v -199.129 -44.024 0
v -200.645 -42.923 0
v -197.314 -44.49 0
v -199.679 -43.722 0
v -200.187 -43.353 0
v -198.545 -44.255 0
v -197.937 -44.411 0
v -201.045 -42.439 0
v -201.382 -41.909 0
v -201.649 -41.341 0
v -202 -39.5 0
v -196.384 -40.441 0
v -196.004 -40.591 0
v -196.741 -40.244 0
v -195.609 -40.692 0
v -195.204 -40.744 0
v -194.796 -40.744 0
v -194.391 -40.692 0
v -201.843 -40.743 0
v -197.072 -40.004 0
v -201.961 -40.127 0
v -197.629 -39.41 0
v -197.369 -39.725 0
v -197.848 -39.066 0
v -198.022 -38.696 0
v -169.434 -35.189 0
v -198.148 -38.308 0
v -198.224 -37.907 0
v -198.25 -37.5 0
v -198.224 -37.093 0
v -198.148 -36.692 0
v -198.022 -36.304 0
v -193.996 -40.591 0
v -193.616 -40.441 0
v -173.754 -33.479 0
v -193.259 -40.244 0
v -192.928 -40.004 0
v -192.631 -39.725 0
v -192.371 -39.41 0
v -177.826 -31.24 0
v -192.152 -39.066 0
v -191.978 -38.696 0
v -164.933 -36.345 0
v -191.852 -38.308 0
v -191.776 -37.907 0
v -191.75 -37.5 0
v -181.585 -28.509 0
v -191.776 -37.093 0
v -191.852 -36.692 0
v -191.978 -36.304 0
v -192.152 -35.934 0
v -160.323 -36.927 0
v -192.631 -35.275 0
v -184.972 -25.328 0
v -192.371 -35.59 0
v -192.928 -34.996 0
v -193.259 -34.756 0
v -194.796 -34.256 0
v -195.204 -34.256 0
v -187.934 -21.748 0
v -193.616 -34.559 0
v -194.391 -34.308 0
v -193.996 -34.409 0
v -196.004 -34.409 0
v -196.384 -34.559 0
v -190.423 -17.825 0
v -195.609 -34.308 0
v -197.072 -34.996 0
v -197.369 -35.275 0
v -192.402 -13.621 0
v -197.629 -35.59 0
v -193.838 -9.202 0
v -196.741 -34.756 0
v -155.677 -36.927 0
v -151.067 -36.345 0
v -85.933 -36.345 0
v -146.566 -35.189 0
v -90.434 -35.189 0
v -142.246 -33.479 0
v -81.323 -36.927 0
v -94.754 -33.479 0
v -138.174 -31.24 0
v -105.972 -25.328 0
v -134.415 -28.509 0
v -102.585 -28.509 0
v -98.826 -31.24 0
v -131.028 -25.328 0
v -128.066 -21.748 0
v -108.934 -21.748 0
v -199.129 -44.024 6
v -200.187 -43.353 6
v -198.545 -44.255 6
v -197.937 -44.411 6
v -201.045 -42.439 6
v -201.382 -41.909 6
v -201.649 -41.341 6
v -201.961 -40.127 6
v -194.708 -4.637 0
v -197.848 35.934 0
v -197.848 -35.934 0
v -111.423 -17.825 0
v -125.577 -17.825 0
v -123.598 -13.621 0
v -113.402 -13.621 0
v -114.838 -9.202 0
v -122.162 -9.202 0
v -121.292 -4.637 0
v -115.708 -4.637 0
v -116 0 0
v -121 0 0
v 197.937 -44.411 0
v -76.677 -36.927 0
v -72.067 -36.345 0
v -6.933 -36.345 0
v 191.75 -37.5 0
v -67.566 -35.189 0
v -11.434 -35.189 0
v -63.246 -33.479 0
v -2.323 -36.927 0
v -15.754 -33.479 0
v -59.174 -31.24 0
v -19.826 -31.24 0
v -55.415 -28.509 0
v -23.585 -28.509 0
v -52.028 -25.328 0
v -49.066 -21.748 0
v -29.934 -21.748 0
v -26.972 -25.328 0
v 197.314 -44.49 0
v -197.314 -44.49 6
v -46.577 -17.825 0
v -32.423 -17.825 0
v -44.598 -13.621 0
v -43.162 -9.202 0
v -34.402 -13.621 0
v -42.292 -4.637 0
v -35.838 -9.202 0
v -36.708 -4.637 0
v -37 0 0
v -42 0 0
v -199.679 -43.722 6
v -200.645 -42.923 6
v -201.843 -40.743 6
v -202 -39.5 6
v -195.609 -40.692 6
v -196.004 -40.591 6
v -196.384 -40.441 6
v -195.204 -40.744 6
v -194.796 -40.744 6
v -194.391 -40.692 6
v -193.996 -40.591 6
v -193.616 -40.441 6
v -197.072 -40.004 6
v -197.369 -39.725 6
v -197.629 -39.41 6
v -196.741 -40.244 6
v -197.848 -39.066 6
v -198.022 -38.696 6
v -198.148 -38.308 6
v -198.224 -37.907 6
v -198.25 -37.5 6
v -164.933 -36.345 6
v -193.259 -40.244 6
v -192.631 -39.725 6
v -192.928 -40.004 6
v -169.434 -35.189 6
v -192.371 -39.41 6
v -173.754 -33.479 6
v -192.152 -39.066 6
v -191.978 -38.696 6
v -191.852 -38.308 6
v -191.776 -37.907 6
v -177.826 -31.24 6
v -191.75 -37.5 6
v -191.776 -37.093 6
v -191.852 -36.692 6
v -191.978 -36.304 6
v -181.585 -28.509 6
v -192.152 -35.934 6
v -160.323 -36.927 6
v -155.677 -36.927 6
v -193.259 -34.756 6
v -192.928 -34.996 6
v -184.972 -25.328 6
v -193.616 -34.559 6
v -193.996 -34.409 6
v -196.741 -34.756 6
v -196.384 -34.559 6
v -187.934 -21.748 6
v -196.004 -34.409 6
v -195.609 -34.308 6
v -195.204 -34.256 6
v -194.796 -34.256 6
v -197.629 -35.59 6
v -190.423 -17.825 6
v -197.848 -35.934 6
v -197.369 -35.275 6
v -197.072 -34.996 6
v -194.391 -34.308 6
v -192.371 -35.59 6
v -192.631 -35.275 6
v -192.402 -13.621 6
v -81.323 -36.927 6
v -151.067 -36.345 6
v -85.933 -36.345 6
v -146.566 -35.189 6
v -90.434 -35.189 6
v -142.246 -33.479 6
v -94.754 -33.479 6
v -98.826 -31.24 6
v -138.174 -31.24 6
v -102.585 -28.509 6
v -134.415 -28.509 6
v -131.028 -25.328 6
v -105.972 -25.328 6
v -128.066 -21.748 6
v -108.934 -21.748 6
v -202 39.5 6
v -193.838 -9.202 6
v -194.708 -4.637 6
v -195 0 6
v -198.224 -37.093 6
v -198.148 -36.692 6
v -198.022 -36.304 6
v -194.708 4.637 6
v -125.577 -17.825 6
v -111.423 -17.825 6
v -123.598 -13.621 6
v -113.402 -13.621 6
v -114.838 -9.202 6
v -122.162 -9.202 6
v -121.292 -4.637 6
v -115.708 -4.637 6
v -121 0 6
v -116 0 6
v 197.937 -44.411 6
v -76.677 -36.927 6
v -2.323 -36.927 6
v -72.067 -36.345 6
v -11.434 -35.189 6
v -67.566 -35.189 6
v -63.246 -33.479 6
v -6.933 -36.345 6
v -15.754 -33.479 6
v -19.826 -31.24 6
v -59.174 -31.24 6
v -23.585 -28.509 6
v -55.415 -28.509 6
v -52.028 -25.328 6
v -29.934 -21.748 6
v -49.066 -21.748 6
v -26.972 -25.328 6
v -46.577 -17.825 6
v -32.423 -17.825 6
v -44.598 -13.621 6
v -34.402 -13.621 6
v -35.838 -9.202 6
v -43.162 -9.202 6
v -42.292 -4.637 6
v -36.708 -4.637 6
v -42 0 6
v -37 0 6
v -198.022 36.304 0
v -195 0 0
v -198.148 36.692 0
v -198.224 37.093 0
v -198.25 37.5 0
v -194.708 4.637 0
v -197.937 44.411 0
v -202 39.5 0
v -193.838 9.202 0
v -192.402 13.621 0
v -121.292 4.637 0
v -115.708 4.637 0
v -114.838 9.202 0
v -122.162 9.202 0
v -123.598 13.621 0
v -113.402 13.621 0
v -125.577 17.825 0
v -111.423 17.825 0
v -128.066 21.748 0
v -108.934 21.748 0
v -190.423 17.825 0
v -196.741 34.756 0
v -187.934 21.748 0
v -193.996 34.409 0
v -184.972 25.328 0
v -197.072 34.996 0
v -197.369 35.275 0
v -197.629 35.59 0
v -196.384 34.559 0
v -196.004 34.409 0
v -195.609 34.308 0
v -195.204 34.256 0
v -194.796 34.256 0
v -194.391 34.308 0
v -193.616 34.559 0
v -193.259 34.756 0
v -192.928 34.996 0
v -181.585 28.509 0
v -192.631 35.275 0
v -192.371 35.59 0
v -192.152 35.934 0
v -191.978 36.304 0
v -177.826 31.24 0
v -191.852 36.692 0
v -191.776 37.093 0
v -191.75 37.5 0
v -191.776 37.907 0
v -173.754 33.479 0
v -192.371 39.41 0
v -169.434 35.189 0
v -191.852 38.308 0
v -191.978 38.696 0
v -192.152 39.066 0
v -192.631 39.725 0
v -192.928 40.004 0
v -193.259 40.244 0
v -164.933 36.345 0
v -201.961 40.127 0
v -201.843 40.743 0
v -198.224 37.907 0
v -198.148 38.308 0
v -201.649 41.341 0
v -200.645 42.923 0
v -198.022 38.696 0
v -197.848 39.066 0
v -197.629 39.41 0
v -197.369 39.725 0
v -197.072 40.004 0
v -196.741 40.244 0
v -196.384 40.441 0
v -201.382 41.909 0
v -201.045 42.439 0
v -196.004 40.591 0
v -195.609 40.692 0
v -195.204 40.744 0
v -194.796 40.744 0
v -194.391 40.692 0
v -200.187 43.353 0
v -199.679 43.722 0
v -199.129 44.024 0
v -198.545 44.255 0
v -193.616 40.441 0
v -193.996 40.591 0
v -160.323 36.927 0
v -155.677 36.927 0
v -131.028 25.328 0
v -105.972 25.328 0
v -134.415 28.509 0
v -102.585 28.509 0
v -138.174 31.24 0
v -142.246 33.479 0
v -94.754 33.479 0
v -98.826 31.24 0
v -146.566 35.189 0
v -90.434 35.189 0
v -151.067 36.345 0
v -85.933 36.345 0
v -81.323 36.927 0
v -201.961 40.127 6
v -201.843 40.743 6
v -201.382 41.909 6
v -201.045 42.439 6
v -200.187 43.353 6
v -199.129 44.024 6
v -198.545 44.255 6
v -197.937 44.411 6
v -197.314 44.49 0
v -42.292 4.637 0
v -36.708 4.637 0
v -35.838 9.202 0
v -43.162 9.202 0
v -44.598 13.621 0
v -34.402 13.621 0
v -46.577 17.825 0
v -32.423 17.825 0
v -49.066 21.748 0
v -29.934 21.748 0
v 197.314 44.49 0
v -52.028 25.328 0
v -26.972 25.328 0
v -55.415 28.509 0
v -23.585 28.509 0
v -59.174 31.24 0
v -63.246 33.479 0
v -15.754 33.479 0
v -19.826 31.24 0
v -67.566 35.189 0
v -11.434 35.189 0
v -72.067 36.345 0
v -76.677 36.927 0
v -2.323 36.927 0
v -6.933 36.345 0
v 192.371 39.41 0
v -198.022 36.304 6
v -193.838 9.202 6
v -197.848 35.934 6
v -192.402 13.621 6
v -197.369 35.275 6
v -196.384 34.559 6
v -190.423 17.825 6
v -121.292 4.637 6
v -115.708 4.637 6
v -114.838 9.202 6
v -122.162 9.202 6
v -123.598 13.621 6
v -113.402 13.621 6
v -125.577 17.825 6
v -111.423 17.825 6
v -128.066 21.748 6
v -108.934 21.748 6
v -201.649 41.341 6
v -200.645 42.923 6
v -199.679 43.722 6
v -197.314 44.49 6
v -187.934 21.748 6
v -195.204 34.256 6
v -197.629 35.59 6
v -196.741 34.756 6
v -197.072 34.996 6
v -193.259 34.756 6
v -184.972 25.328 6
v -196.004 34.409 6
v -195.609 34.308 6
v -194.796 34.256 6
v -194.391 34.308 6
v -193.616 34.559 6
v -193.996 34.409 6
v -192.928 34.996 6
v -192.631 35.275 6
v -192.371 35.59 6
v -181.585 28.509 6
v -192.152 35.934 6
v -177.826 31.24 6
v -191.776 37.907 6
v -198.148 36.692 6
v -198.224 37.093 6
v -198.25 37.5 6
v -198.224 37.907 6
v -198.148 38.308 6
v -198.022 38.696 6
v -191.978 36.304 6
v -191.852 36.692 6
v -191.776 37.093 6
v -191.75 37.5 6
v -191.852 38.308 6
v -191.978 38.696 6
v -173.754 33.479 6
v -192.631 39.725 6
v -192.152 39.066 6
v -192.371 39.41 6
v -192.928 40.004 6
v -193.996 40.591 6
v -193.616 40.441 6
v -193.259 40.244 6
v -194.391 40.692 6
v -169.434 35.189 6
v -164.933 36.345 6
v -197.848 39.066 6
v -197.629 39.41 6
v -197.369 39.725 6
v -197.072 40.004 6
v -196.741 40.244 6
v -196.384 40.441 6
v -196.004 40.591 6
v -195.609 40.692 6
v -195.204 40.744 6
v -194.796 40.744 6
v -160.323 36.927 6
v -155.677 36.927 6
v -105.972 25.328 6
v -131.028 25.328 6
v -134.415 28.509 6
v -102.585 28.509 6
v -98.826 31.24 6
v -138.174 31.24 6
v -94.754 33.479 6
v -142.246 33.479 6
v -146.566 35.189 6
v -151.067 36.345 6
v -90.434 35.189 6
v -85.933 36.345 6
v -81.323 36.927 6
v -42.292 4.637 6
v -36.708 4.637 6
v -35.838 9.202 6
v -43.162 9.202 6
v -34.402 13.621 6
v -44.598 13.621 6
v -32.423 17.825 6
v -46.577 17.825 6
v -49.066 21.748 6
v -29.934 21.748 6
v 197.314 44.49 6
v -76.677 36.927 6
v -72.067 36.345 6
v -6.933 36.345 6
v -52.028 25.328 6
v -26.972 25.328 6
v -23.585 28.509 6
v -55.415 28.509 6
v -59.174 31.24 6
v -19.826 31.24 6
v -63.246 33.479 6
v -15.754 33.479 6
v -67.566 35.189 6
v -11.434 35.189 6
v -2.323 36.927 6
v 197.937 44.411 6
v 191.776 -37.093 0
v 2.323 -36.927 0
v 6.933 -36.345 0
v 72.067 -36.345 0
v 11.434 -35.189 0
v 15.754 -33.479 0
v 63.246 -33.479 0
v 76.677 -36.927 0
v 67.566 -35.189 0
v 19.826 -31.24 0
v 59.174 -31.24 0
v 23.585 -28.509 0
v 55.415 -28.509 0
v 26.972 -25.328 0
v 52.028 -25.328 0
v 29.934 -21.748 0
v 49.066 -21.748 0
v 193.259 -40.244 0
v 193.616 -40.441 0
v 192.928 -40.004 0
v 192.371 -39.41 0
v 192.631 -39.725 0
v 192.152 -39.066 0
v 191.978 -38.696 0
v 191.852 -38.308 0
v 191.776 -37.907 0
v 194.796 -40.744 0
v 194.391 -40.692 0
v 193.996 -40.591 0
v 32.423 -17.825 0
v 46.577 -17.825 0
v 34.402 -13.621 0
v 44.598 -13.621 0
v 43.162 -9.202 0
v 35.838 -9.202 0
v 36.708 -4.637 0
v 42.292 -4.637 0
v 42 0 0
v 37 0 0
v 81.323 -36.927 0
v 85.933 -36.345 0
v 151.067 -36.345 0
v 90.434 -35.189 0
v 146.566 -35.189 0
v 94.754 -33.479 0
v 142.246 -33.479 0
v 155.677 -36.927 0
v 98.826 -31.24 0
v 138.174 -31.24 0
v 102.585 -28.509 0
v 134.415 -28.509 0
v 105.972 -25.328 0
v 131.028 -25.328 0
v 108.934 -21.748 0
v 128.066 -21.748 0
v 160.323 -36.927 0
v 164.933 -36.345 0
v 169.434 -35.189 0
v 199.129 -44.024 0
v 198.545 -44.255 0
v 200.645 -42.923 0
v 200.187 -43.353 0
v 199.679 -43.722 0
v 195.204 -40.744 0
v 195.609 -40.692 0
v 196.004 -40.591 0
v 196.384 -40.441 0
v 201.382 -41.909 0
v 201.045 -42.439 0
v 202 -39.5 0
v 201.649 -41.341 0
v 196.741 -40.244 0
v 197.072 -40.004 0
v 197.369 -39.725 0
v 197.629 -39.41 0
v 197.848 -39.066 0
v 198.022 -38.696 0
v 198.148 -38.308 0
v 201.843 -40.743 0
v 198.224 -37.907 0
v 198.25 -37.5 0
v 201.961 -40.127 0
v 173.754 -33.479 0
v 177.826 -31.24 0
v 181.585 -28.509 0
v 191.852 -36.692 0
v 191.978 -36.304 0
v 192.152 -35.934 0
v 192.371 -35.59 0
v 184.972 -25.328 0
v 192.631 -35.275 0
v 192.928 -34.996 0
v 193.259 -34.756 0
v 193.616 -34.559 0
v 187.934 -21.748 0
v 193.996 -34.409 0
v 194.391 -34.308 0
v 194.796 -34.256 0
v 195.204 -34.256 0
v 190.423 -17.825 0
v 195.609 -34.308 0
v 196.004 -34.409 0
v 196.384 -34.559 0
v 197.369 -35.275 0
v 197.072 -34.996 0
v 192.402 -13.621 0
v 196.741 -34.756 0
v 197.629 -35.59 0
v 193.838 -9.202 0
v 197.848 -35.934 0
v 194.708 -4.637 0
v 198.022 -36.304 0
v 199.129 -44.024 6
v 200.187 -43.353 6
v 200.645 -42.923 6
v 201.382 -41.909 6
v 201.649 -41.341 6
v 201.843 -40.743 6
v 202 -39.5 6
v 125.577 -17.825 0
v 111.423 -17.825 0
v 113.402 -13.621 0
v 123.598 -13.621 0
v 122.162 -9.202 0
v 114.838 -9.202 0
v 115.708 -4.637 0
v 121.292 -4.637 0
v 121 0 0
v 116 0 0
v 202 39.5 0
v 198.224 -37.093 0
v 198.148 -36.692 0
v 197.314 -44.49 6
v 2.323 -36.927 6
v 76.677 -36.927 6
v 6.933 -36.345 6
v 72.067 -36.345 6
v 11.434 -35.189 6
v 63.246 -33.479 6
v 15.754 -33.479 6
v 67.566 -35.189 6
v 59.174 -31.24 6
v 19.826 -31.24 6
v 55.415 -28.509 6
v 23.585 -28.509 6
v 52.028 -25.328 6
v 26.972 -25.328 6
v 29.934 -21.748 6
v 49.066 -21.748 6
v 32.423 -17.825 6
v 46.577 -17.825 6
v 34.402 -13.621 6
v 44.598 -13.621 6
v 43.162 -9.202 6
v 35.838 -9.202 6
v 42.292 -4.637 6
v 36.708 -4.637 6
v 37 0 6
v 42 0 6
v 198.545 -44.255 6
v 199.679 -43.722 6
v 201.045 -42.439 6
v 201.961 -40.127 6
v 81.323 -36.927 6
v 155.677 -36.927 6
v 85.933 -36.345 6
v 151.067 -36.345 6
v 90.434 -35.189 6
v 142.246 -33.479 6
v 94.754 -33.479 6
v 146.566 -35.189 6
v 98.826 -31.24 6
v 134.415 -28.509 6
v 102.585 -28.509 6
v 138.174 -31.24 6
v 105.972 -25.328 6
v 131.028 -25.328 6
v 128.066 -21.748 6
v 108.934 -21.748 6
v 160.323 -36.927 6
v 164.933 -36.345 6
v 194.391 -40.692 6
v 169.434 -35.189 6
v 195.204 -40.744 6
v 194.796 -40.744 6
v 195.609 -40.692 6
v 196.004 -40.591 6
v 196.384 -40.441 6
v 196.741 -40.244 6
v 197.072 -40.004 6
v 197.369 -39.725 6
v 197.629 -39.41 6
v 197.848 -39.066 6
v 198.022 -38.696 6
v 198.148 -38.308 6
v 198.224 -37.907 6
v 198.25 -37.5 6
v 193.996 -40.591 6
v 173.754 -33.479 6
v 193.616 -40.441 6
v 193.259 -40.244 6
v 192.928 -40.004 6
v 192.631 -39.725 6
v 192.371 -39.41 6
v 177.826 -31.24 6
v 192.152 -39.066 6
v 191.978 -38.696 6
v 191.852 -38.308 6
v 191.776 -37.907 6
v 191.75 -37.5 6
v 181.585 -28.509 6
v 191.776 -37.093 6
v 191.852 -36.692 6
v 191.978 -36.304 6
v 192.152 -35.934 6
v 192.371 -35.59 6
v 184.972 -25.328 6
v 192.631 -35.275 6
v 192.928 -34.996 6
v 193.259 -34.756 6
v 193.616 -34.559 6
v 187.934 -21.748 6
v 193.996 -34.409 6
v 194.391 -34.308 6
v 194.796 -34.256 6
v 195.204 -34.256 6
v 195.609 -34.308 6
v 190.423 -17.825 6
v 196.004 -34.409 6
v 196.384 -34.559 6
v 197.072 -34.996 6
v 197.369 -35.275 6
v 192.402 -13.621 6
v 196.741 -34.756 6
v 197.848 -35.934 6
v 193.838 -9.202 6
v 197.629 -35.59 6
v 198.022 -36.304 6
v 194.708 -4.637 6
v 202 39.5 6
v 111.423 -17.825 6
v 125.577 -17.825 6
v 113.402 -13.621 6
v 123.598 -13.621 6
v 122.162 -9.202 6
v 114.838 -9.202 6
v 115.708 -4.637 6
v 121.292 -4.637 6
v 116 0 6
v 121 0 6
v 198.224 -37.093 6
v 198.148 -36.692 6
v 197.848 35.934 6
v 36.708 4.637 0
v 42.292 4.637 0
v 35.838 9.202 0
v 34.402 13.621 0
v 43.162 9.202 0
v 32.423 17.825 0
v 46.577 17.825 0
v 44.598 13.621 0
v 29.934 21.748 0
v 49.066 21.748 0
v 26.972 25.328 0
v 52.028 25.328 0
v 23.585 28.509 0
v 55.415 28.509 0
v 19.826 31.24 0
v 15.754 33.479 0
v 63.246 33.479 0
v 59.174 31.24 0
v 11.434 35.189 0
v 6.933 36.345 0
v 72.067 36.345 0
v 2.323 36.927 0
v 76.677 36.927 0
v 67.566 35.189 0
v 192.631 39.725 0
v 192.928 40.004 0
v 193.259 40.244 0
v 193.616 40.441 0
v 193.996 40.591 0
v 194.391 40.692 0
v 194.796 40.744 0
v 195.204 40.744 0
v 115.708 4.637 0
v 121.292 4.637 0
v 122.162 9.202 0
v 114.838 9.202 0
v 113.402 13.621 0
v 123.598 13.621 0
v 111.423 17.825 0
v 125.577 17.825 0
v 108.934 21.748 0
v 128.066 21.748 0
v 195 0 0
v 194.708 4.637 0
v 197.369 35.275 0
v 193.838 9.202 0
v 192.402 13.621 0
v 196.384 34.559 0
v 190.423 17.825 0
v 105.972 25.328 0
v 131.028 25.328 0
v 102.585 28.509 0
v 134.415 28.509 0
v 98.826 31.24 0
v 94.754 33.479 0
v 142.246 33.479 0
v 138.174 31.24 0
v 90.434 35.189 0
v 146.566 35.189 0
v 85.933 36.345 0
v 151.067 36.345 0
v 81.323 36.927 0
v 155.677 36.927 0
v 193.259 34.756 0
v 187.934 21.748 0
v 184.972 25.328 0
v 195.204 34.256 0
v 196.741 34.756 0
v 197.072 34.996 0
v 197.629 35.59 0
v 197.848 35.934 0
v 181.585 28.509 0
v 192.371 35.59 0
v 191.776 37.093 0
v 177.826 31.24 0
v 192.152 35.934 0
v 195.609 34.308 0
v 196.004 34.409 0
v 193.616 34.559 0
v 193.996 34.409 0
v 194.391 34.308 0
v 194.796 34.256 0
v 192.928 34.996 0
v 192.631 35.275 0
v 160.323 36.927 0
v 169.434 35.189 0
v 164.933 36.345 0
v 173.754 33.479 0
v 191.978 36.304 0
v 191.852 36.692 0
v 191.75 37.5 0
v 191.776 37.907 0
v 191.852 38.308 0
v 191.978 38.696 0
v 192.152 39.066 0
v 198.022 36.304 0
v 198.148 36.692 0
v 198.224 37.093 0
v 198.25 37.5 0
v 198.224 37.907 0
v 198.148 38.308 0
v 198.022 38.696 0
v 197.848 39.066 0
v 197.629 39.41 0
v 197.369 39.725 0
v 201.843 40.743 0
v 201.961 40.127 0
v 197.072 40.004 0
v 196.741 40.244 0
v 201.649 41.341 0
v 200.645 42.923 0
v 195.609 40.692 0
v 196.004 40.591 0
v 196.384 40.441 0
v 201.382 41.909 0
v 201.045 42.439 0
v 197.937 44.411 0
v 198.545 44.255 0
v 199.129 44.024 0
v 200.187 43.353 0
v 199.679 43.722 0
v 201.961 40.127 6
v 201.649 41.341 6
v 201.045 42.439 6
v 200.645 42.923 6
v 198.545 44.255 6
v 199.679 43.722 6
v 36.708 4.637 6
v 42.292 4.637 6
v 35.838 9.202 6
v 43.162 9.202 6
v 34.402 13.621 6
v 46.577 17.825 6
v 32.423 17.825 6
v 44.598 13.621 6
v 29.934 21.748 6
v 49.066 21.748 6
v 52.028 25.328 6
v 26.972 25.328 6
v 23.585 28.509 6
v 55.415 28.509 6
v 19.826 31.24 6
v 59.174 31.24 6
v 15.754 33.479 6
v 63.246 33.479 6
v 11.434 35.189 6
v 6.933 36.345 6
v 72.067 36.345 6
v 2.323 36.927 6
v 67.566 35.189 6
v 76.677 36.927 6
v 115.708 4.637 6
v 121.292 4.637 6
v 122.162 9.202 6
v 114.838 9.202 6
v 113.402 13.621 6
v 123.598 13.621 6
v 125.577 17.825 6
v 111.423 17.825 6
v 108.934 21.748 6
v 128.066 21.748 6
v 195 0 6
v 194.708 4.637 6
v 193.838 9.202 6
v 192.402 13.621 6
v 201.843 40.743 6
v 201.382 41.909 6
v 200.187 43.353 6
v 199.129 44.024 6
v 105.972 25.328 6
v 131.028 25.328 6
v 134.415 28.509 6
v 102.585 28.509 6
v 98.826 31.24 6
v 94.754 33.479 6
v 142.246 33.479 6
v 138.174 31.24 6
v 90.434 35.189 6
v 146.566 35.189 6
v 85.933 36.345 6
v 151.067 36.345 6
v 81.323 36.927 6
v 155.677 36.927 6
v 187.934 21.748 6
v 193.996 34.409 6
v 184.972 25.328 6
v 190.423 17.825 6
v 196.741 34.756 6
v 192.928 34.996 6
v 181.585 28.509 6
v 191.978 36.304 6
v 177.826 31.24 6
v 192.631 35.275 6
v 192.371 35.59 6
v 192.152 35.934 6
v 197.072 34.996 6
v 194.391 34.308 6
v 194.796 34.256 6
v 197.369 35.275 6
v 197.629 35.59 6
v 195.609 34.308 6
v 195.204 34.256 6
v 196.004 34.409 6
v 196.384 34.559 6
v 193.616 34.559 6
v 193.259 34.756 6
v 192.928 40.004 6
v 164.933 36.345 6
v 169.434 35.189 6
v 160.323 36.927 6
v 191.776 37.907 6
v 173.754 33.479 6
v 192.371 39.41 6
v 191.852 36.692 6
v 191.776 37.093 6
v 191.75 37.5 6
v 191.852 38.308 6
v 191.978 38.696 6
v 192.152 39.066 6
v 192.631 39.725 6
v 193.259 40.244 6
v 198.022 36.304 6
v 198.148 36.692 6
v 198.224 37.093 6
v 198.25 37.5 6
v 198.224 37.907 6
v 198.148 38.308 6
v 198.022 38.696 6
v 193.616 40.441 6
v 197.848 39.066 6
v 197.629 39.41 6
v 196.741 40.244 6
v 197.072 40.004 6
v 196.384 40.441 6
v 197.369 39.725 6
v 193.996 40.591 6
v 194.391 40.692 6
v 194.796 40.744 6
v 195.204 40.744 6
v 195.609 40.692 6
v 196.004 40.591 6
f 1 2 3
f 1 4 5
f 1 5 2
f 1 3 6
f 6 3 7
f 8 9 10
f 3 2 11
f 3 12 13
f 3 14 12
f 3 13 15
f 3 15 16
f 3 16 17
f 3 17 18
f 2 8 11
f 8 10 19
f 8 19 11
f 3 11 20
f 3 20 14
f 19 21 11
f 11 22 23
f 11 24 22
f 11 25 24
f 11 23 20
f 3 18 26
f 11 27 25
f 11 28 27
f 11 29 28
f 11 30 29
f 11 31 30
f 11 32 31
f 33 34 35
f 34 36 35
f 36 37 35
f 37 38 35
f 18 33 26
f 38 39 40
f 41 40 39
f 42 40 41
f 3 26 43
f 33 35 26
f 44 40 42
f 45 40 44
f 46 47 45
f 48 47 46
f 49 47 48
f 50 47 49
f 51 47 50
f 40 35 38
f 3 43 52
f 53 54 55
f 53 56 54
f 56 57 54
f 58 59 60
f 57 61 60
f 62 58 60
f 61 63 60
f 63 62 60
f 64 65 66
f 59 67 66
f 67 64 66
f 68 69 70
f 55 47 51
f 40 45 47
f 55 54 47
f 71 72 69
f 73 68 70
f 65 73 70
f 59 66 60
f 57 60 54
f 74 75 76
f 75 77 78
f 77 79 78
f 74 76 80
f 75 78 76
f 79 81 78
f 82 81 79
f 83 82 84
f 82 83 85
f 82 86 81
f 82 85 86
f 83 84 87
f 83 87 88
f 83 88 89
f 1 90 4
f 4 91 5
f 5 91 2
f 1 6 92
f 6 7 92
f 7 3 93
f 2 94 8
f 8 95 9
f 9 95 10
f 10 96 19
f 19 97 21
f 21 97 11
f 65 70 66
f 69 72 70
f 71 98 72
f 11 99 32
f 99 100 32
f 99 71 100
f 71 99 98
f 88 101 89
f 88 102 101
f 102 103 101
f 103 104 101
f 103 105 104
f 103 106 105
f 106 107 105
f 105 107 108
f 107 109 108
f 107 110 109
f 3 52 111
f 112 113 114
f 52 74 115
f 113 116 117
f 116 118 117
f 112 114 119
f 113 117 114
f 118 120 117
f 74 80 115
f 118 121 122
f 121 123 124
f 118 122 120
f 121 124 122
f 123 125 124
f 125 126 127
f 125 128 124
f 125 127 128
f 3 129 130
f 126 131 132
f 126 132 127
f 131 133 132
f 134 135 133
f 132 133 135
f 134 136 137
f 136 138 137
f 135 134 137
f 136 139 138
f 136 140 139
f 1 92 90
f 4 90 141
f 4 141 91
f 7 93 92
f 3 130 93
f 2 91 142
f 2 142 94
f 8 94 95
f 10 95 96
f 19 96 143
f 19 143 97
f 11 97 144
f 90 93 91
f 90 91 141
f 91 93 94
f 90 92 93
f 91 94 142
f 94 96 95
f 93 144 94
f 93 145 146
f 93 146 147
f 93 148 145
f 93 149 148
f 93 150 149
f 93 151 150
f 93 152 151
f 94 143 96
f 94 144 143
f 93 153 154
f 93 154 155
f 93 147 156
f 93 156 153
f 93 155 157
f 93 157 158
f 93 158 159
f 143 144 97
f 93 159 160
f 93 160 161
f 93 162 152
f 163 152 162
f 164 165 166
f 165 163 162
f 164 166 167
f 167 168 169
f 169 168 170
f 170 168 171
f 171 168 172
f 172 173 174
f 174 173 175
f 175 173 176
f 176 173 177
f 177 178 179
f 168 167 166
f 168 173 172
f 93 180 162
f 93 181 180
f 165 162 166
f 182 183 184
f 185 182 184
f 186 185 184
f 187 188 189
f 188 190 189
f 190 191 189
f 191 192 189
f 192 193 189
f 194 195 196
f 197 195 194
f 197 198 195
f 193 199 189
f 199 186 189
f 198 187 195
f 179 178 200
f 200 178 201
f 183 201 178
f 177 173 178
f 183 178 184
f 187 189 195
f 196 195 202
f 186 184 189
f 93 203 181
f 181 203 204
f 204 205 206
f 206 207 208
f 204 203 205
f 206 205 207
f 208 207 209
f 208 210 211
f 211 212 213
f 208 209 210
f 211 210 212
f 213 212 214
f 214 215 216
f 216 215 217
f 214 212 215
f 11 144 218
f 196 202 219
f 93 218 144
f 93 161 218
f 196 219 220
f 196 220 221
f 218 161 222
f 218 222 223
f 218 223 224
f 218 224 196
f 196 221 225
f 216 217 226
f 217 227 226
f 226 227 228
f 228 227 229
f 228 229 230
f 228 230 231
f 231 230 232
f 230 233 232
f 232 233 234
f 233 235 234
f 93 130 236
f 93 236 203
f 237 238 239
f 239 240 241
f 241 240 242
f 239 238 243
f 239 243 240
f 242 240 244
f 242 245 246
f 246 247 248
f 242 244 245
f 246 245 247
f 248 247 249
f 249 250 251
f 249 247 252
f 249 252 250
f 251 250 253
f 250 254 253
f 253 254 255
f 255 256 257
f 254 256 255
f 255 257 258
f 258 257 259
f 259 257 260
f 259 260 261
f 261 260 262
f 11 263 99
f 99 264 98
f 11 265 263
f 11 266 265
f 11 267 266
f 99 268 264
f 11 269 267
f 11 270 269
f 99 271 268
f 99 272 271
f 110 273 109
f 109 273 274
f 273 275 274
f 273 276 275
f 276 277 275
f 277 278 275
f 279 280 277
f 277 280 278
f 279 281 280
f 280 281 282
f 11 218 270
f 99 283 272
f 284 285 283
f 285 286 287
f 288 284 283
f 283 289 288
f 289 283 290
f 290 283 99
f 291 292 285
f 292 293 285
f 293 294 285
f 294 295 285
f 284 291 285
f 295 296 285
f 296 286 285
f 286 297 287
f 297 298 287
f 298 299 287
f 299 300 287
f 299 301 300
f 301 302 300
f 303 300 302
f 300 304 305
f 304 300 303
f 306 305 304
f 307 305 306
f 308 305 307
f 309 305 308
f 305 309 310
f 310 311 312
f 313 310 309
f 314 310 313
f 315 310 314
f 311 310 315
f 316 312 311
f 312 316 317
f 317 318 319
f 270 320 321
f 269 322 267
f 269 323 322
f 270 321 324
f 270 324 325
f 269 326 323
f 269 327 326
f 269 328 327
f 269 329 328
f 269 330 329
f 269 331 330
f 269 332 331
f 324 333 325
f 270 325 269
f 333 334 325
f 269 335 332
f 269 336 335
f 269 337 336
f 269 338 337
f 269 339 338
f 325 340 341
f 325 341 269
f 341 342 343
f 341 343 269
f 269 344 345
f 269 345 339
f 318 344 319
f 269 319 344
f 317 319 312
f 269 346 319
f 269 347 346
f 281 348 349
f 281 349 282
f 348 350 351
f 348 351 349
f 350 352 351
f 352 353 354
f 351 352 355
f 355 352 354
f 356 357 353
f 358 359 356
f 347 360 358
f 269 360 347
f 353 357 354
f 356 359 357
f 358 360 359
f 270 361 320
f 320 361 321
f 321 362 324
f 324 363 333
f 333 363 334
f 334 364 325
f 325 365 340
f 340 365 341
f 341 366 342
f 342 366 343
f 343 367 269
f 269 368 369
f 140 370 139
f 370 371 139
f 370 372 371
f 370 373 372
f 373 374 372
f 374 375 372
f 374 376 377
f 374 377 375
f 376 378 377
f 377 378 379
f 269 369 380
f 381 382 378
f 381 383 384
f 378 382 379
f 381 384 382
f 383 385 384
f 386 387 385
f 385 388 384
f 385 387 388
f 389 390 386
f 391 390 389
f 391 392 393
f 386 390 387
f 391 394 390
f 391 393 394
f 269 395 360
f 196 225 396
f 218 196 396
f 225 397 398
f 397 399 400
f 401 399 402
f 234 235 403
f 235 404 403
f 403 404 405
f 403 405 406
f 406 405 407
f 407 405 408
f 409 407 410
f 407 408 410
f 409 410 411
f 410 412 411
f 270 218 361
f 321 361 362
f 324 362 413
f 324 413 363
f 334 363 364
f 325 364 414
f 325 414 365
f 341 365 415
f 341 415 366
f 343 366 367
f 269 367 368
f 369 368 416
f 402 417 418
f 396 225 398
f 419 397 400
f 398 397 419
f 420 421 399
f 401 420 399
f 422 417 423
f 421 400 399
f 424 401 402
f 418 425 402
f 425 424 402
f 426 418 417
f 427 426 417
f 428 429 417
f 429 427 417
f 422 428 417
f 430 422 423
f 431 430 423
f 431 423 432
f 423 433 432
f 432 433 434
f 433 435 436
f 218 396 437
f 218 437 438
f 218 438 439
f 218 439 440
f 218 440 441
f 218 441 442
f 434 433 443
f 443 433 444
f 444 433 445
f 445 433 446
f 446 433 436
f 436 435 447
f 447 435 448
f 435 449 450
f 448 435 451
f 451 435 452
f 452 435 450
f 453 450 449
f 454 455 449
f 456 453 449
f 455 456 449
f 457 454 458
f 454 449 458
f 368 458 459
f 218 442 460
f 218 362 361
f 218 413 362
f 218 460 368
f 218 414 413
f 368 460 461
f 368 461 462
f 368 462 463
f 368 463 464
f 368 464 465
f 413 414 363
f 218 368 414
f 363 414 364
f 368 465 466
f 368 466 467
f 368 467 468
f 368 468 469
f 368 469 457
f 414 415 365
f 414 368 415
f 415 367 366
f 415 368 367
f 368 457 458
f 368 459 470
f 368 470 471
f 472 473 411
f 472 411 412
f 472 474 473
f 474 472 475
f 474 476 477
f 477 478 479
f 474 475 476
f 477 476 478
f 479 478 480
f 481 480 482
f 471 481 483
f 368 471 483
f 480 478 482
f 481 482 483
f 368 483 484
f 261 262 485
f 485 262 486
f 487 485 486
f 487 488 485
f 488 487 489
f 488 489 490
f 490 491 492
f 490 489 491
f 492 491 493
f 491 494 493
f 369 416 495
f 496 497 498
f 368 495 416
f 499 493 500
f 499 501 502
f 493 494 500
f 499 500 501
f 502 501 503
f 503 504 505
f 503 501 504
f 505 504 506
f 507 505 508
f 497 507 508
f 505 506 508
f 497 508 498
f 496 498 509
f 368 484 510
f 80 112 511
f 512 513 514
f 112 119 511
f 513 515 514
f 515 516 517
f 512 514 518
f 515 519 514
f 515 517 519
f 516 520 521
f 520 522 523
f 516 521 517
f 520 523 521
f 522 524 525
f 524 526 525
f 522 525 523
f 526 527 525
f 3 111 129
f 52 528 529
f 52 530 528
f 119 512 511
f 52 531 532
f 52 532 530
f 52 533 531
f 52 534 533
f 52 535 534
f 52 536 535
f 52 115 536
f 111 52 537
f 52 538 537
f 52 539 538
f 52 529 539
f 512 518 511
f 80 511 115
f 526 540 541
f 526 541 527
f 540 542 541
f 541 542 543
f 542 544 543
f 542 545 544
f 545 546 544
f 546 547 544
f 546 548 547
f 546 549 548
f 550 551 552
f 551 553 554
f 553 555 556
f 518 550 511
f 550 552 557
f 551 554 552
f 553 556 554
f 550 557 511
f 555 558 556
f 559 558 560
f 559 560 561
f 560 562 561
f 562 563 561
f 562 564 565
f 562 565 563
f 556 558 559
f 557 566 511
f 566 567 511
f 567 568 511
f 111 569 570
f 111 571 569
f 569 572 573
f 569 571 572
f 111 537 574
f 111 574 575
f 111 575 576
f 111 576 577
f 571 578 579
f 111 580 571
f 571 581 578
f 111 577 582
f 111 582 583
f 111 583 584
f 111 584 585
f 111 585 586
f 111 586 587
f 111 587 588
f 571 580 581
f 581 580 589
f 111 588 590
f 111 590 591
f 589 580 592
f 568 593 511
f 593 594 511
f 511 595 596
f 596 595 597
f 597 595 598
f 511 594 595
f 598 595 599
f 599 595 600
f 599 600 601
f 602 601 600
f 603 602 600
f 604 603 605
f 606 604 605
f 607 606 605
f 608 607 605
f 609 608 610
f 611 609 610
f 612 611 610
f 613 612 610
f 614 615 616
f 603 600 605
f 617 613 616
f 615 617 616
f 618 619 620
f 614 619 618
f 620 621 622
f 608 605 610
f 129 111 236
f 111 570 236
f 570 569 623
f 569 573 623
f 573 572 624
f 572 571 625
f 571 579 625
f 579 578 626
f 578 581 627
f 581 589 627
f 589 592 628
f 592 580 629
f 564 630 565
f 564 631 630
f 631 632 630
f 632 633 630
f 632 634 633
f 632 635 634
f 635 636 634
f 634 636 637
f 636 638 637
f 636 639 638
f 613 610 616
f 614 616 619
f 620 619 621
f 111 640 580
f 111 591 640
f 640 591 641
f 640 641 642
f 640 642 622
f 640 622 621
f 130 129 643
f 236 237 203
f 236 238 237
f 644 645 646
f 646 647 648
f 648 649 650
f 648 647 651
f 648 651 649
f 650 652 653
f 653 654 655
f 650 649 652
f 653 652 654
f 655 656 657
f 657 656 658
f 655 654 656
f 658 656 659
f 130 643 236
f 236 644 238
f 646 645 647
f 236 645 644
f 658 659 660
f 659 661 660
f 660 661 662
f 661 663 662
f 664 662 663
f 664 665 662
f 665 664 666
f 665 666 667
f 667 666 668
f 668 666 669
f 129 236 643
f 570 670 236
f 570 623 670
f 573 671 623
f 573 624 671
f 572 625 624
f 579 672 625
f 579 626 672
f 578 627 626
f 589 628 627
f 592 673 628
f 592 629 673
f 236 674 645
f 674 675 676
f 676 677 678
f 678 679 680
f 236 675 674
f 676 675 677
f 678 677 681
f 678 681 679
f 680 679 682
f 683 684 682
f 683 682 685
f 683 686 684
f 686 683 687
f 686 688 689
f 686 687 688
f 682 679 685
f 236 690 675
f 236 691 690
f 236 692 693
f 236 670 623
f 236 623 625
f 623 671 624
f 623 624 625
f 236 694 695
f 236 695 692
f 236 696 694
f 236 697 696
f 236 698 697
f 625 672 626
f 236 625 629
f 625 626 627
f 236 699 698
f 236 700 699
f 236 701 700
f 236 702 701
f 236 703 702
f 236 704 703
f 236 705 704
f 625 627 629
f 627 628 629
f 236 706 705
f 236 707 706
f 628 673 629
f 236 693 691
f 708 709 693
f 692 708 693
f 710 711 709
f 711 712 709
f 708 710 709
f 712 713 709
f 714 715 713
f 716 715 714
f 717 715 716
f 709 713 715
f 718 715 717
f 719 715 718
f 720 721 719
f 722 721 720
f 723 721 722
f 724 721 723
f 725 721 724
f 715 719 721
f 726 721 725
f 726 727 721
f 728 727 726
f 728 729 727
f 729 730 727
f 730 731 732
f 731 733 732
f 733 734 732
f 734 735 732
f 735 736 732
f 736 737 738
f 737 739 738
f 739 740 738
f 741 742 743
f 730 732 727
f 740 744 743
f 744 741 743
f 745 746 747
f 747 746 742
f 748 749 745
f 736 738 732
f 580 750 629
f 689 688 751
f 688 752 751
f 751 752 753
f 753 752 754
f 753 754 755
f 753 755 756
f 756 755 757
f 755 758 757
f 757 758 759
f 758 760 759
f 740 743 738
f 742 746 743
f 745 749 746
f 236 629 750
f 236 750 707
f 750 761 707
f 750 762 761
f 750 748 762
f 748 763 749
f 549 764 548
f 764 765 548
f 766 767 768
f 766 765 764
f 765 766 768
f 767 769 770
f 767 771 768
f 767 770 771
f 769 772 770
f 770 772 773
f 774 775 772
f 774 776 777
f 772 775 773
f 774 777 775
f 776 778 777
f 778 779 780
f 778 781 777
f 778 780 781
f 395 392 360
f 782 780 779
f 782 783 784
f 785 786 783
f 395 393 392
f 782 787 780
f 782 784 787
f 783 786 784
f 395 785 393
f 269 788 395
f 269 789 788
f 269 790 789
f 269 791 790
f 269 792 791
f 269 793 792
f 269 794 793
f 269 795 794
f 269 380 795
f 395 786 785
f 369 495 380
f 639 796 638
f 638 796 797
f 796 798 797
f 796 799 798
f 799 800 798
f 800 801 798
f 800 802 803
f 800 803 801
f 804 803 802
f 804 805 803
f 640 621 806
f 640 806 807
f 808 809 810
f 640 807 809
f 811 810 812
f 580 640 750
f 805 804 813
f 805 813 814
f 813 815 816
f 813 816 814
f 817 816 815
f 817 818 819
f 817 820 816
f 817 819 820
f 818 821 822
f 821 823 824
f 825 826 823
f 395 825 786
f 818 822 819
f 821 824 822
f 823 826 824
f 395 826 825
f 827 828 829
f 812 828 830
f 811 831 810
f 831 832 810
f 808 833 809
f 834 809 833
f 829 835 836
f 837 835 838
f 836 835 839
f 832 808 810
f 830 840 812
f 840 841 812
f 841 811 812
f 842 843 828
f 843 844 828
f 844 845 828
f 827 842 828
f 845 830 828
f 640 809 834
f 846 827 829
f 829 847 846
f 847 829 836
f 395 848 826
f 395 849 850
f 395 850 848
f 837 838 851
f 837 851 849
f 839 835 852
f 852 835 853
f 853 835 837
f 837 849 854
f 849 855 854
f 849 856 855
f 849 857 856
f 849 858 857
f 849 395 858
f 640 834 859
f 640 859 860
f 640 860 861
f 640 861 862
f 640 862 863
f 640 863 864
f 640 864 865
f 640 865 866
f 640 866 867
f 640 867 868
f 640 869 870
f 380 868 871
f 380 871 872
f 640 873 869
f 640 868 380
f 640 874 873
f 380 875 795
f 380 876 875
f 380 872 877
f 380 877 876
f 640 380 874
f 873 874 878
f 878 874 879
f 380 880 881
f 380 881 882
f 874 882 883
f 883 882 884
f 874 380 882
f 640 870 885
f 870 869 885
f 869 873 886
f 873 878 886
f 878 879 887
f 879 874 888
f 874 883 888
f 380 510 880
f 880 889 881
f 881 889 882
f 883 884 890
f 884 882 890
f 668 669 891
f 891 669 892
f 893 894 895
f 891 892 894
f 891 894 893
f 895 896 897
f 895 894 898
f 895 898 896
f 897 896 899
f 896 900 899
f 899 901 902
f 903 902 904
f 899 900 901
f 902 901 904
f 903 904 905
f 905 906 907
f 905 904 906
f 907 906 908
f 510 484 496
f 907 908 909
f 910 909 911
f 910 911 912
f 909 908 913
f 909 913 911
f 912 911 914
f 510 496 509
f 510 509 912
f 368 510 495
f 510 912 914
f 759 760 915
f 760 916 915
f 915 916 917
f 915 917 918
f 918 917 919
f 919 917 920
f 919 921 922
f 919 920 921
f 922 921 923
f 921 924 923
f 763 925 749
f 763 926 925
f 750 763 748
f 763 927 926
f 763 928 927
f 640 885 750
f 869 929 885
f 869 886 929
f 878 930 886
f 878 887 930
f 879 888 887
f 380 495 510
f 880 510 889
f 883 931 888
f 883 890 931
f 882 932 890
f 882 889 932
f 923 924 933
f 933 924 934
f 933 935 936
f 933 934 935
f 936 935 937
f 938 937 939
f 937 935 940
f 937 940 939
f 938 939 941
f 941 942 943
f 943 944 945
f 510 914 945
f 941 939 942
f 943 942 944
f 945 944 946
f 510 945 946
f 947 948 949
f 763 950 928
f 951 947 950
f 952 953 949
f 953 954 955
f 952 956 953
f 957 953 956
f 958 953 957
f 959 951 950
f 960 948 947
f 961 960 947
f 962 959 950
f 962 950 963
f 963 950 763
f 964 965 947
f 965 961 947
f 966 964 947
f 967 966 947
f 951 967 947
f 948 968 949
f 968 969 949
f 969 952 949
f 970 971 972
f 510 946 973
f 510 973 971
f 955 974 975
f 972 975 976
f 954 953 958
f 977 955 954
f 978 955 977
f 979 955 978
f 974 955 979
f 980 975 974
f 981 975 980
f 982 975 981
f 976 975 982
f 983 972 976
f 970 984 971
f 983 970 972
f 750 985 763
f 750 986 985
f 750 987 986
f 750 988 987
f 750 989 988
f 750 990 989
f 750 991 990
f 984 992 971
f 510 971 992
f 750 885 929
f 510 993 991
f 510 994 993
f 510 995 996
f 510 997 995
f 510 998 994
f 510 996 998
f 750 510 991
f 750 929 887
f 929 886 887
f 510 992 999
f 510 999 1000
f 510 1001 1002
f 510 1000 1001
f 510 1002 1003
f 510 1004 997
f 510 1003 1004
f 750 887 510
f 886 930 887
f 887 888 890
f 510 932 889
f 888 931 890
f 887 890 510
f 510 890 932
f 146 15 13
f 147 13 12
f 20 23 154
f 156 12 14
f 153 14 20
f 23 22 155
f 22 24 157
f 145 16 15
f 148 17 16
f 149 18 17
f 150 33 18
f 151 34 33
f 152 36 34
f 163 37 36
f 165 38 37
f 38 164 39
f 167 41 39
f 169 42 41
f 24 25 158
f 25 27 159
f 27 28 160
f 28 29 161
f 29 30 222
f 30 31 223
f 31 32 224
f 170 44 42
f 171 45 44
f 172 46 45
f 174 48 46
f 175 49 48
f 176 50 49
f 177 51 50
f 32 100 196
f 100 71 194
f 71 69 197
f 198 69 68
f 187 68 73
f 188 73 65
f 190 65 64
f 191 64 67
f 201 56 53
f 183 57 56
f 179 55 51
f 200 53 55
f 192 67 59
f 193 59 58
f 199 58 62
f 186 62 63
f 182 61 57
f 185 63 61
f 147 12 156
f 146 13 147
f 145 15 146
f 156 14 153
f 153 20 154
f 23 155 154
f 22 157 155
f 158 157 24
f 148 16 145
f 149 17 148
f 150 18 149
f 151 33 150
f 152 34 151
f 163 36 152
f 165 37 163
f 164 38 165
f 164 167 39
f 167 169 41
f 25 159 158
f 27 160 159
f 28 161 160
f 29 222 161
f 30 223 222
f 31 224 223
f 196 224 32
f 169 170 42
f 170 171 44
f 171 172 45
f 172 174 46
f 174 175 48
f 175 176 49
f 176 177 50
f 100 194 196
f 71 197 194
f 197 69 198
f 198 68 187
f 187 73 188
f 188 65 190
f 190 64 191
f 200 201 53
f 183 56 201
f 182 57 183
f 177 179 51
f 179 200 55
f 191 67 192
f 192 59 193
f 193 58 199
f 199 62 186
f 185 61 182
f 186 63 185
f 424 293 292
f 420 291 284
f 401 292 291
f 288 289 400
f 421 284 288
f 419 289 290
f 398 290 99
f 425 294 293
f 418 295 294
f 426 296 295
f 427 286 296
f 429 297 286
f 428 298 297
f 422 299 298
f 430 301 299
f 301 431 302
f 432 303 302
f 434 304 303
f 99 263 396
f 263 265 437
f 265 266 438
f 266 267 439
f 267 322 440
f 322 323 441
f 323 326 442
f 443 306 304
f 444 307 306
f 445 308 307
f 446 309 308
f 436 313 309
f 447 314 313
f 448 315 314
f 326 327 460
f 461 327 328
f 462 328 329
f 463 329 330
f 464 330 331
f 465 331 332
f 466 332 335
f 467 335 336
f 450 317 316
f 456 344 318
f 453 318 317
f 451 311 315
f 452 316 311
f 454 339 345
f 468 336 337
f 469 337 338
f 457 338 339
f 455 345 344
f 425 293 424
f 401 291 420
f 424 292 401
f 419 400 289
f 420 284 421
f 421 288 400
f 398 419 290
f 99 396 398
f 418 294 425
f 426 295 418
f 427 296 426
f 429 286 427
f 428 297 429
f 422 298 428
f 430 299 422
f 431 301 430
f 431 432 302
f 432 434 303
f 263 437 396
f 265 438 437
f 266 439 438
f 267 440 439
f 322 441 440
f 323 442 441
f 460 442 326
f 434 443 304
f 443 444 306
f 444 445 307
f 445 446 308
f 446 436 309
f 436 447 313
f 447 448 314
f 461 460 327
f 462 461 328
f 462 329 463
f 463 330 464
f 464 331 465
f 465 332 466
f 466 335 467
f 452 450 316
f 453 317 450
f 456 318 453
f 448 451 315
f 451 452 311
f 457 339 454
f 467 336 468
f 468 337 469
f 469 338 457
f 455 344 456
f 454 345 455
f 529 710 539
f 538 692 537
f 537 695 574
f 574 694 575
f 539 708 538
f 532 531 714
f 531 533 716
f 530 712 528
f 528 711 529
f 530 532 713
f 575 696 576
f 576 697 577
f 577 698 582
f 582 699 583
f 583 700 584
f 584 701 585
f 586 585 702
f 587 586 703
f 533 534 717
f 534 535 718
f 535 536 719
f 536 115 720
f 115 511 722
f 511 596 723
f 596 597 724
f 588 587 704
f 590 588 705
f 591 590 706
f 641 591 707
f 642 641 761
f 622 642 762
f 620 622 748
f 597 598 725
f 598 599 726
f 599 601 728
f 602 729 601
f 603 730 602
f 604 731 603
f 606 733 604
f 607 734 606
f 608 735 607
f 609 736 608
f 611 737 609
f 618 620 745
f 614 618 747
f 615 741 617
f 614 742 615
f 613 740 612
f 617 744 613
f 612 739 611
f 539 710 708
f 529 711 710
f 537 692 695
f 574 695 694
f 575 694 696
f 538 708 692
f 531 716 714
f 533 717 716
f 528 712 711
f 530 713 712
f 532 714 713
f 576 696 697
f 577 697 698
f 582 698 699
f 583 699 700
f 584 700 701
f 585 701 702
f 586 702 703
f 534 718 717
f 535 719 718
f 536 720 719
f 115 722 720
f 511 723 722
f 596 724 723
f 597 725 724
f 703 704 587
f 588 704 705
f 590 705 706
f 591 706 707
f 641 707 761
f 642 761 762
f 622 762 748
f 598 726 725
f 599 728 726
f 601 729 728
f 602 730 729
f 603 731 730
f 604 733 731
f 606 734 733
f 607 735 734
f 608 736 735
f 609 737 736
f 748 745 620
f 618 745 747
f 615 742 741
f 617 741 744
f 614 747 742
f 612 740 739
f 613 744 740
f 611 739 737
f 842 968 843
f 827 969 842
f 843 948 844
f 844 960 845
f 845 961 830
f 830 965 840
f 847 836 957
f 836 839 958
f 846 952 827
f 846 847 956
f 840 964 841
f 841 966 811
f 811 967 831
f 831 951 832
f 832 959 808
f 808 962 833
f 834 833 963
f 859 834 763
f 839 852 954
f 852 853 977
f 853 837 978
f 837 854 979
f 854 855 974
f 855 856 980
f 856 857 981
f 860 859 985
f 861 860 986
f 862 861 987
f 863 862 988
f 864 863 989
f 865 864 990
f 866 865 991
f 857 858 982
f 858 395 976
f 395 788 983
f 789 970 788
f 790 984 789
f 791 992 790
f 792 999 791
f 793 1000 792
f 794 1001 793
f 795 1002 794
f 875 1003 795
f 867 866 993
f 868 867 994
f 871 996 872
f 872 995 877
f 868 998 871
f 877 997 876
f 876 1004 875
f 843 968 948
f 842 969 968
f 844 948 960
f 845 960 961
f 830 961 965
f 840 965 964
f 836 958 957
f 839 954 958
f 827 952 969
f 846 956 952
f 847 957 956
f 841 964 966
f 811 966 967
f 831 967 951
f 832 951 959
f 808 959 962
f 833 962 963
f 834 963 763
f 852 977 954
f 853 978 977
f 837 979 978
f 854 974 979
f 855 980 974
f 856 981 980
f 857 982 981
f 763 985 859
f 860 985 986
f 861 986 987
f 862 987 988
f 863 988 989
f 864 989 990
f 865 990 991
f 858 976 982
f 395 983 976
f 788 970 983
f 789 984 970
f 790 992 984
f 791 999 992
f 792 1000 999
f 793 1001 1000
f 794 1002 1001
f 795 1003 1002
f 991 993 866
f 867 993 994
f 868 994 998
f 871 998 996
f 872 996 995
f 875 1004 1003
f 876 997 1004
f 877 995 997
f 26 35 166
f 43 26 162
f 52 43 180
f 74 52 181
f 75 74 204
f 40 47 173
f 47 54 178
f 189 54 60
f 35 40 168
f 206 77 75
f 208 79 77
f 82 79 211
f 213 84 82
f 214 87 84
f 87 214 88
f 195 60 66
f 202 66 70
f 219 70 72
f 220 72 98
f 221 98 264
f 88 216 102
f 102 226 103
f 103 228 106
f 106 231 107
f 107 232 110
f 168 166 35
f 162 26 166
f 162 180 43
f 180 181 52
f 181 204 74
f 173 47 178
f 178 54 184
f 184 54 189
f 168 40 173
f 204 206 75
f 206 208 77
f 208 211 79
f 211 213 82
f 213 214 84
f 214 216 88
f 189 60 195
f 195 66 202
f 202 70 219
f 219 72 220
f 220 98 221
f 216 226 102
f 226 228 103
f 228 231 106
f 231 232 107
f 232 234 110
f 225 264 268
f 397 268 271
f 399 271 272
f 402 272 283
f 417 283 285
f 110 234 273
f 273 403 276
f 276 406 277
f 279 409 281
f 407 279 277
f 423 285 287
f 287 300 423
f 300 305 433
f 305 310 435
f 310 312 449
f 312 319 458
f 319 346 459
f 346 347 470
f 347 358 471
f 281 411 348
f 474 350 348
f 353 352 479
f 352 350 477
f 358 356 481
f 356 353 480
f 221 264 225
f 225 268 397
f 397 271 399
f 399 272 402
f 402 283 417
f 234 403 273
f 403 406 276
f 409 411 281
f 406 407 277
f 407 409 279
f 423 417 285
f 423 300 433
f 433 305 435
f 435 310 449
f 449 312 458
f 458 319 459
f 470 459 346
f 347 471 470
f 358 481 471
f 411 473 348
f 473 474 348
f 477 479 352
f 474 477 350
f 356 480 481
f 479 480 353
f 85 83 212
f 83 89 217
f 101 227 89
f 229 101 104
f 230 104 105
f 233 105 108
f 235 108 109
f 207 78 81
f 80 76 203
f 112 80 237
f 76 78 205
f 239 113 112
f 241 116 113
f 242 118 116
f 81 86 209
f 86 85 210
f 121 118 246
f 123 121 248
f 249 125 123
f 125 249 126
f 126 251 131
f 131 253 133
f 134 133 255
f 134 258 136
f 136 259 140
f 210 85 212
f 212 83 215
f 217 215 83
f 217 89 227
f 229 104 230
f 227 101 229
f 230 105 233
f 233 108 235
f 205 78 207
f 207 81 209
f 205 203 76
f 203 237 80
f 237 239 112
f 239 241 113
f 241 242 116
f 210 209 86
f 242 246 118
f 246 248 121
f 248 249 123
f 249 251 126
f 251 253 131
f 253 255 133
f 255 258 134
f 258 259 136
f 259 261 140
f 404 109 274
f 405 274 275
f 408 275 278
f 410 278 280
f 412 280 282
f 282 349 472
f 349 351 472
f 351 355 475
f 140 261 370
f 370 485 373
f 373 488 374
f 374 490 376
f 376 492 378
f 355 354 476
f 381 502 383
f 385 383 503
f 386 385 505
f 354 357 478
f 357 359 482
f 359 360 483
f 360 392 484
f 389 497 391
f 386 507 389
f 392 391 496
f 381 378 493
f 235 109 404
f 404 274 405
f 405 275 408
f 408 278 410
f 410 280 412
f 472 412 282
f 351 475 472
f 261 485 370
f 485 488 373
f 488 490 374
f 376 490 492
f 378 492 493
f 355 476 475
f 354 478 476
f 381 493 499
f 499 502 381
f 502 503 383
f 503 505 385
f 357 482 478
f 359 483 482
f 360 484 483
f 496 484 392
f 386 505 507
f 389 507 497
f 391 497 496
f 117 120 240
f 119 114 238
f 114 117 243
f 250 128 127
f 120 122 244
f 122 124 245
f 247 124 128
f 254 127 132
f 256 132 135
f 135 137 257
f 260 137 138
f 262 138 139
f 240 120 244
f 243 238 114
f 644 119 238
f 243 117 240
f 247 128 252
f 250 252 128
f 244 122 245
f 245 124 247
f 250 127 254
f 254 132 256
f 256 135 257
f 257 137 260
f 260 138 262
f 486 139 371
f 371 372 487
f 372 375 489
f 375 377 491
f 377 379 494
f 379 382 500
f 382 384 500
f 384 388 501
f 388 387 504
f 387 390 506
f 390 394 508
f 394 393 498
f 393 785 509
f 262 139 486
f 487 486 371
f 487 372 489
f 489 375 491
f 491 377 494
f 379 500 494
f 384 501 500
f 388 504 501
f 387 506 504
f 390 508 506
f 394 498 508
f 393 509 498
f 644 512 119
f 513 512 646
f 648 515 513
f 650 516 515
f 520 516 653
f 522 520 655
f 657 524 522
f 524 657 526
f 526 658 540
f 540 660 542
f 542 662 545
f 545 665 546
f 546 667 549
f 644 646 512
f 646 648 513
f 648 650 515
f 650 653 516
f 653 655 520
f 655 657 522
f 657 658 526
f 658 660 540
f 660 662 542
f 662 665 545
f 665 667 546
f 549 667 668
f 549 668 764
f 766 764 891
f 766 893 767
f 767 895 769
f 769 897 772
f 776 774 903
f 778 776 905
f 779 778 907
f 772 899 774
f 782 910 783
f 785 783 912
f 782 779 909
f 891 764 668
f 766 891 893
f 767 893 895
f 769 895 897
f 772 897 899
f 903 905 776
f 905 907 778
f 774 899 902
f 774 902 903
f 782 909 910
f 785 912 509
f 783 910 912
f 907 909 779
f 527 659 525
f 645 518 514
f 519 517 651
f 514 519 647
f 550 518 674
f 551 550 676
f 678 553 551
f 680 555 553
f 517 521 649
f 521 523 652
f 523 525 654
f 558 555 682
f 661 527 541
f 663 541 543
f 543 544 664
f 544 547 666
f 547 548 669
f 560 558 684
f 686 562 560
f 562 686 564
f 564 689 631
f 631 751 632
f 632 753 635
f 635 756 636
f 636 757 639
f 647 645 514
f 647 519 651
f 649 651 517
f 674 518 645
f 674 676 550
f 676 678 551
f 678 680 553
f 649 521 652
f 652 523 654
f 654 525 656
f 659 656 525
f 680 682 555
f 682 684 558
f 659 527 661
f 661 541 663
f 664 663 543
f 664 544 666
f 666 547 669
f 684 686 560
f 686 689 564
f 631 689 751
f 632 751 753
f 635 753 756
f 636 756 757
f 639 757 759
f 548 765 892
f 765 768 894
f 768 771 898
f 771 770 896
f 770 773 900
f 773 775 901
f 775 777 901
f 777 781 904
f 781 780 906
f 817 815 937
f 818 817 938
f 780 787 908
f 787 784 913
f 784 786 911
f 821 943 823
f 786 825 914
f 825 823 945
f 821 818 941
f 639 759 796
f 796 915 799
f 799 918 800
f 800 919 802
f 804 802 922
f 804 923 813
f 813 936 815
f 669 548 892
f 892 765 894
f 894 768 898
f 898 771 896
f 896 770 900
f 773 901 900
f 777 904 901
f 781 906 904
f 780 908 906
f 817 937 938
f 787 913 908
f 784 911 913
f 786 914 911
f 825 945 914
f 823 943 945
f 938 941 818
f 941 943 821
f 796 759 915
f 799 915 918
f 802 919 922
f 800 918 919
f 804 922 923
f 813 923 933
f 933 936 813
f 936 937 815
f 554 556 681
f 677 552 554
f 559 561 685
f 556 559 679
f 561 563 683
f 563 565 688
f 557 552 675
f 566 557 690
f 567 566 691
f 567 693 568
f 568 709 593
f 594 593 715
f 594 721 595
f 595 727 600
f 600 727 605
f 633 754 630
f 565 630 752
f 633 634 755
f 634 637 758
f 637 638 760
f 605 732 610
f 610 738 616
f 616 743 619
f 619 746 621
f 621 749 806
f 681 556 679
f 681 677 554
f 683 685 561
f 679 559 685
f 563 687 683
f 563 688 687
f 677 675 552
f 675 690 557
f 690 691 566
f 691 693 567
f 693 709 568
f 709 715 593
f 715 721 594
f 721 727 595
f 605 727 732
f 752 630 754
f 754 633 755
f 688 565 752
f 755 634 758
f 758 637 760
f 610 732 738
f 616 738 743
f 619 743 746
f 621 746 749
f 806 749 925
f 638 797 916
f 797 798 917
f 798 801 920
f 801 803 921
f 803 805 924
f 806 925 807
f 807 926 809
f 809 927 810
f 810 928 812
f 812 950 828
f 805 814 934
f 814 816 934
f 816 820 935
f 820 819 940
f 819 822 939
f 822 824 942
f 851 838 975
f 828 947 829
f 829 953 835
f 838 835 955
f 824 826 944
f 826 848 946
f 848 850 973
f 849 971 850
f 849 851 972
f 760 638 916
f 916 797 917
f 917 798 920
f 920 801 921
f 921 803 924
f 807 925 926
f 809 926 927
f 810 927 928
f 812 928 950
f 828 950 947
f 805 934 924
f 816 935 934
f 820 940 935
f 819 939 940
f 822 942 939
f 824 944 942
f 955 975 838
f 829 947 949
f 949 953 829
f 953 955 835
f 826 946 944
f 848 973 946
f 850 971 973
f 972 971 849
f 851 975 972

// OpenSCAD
$fn = 50;

difference() {
	union() {
		hull() {
			translate(v = [-197.0, 39.5, 0]) {
				cylinder(h = 6, r = 5);
			}
			translate(v = [197.0, 39.5, 0]) {
				cylinder(h = 6, r = 5);
			}
			translate(v = [-197.0, -39.5, 0]) {
				cylinder(h = 6, r = 5);
			}
			translate(v = [197.0, -39.5, 0]) {
				cylinder(h = 6, r = 5);
			}
		}
	}
	union() {
		translate(v = [-195.0, -37.5, -100.0]) {
			cylinder(h = 200, r = 3.25);
		}
		translate(v = [-195.0, 37.5, -100.0]) {
			cylinder(h = 200, r = 3.25);
		}
		translate(v = [195.0, -37.5, -100.0]) {
			cylinder(h = 200, r = 3.25);
		}
		translate(v = [195.0, 37.5, -100.0]) {
			cylinder(h = 200, r = 3.25);
		}
		translate(v = [-195.0, -37.5, -100.0]) {
			cylinder(h = 200, r = 1.8);
		}
		translate(v = [-195.0, 37.5, -100.0]) {
			cylinder(h = 200, r = 1.8);
		}
		translate(v = [195.0, -37.5, -100.0]) {
			cylinder(h = 200, r = 1.8);
		}
		translate(v = [195.0, 37.5, -100.0]) {
			cylinder(h = 200, r = 1.8);
		}
		translate(v = [-158.0, 0, 0.0]) {
			cylinder(h = 6, r = 37.0);
		}
		translate(v = [-79.0, 0, 0.0]) {
			cylinder(h = 6, r = 37.0);
		}
		cylinder(h = 6, r = 37.0);
		translate(v = [79.0, 0, 0.0]) {
			cylinder(h = 6, r = 37.0);
		}
		translate(v = [158.0, 0, 0.0]) {
			cylinder(h = 6, r = 37.0);
		}
	}
}
